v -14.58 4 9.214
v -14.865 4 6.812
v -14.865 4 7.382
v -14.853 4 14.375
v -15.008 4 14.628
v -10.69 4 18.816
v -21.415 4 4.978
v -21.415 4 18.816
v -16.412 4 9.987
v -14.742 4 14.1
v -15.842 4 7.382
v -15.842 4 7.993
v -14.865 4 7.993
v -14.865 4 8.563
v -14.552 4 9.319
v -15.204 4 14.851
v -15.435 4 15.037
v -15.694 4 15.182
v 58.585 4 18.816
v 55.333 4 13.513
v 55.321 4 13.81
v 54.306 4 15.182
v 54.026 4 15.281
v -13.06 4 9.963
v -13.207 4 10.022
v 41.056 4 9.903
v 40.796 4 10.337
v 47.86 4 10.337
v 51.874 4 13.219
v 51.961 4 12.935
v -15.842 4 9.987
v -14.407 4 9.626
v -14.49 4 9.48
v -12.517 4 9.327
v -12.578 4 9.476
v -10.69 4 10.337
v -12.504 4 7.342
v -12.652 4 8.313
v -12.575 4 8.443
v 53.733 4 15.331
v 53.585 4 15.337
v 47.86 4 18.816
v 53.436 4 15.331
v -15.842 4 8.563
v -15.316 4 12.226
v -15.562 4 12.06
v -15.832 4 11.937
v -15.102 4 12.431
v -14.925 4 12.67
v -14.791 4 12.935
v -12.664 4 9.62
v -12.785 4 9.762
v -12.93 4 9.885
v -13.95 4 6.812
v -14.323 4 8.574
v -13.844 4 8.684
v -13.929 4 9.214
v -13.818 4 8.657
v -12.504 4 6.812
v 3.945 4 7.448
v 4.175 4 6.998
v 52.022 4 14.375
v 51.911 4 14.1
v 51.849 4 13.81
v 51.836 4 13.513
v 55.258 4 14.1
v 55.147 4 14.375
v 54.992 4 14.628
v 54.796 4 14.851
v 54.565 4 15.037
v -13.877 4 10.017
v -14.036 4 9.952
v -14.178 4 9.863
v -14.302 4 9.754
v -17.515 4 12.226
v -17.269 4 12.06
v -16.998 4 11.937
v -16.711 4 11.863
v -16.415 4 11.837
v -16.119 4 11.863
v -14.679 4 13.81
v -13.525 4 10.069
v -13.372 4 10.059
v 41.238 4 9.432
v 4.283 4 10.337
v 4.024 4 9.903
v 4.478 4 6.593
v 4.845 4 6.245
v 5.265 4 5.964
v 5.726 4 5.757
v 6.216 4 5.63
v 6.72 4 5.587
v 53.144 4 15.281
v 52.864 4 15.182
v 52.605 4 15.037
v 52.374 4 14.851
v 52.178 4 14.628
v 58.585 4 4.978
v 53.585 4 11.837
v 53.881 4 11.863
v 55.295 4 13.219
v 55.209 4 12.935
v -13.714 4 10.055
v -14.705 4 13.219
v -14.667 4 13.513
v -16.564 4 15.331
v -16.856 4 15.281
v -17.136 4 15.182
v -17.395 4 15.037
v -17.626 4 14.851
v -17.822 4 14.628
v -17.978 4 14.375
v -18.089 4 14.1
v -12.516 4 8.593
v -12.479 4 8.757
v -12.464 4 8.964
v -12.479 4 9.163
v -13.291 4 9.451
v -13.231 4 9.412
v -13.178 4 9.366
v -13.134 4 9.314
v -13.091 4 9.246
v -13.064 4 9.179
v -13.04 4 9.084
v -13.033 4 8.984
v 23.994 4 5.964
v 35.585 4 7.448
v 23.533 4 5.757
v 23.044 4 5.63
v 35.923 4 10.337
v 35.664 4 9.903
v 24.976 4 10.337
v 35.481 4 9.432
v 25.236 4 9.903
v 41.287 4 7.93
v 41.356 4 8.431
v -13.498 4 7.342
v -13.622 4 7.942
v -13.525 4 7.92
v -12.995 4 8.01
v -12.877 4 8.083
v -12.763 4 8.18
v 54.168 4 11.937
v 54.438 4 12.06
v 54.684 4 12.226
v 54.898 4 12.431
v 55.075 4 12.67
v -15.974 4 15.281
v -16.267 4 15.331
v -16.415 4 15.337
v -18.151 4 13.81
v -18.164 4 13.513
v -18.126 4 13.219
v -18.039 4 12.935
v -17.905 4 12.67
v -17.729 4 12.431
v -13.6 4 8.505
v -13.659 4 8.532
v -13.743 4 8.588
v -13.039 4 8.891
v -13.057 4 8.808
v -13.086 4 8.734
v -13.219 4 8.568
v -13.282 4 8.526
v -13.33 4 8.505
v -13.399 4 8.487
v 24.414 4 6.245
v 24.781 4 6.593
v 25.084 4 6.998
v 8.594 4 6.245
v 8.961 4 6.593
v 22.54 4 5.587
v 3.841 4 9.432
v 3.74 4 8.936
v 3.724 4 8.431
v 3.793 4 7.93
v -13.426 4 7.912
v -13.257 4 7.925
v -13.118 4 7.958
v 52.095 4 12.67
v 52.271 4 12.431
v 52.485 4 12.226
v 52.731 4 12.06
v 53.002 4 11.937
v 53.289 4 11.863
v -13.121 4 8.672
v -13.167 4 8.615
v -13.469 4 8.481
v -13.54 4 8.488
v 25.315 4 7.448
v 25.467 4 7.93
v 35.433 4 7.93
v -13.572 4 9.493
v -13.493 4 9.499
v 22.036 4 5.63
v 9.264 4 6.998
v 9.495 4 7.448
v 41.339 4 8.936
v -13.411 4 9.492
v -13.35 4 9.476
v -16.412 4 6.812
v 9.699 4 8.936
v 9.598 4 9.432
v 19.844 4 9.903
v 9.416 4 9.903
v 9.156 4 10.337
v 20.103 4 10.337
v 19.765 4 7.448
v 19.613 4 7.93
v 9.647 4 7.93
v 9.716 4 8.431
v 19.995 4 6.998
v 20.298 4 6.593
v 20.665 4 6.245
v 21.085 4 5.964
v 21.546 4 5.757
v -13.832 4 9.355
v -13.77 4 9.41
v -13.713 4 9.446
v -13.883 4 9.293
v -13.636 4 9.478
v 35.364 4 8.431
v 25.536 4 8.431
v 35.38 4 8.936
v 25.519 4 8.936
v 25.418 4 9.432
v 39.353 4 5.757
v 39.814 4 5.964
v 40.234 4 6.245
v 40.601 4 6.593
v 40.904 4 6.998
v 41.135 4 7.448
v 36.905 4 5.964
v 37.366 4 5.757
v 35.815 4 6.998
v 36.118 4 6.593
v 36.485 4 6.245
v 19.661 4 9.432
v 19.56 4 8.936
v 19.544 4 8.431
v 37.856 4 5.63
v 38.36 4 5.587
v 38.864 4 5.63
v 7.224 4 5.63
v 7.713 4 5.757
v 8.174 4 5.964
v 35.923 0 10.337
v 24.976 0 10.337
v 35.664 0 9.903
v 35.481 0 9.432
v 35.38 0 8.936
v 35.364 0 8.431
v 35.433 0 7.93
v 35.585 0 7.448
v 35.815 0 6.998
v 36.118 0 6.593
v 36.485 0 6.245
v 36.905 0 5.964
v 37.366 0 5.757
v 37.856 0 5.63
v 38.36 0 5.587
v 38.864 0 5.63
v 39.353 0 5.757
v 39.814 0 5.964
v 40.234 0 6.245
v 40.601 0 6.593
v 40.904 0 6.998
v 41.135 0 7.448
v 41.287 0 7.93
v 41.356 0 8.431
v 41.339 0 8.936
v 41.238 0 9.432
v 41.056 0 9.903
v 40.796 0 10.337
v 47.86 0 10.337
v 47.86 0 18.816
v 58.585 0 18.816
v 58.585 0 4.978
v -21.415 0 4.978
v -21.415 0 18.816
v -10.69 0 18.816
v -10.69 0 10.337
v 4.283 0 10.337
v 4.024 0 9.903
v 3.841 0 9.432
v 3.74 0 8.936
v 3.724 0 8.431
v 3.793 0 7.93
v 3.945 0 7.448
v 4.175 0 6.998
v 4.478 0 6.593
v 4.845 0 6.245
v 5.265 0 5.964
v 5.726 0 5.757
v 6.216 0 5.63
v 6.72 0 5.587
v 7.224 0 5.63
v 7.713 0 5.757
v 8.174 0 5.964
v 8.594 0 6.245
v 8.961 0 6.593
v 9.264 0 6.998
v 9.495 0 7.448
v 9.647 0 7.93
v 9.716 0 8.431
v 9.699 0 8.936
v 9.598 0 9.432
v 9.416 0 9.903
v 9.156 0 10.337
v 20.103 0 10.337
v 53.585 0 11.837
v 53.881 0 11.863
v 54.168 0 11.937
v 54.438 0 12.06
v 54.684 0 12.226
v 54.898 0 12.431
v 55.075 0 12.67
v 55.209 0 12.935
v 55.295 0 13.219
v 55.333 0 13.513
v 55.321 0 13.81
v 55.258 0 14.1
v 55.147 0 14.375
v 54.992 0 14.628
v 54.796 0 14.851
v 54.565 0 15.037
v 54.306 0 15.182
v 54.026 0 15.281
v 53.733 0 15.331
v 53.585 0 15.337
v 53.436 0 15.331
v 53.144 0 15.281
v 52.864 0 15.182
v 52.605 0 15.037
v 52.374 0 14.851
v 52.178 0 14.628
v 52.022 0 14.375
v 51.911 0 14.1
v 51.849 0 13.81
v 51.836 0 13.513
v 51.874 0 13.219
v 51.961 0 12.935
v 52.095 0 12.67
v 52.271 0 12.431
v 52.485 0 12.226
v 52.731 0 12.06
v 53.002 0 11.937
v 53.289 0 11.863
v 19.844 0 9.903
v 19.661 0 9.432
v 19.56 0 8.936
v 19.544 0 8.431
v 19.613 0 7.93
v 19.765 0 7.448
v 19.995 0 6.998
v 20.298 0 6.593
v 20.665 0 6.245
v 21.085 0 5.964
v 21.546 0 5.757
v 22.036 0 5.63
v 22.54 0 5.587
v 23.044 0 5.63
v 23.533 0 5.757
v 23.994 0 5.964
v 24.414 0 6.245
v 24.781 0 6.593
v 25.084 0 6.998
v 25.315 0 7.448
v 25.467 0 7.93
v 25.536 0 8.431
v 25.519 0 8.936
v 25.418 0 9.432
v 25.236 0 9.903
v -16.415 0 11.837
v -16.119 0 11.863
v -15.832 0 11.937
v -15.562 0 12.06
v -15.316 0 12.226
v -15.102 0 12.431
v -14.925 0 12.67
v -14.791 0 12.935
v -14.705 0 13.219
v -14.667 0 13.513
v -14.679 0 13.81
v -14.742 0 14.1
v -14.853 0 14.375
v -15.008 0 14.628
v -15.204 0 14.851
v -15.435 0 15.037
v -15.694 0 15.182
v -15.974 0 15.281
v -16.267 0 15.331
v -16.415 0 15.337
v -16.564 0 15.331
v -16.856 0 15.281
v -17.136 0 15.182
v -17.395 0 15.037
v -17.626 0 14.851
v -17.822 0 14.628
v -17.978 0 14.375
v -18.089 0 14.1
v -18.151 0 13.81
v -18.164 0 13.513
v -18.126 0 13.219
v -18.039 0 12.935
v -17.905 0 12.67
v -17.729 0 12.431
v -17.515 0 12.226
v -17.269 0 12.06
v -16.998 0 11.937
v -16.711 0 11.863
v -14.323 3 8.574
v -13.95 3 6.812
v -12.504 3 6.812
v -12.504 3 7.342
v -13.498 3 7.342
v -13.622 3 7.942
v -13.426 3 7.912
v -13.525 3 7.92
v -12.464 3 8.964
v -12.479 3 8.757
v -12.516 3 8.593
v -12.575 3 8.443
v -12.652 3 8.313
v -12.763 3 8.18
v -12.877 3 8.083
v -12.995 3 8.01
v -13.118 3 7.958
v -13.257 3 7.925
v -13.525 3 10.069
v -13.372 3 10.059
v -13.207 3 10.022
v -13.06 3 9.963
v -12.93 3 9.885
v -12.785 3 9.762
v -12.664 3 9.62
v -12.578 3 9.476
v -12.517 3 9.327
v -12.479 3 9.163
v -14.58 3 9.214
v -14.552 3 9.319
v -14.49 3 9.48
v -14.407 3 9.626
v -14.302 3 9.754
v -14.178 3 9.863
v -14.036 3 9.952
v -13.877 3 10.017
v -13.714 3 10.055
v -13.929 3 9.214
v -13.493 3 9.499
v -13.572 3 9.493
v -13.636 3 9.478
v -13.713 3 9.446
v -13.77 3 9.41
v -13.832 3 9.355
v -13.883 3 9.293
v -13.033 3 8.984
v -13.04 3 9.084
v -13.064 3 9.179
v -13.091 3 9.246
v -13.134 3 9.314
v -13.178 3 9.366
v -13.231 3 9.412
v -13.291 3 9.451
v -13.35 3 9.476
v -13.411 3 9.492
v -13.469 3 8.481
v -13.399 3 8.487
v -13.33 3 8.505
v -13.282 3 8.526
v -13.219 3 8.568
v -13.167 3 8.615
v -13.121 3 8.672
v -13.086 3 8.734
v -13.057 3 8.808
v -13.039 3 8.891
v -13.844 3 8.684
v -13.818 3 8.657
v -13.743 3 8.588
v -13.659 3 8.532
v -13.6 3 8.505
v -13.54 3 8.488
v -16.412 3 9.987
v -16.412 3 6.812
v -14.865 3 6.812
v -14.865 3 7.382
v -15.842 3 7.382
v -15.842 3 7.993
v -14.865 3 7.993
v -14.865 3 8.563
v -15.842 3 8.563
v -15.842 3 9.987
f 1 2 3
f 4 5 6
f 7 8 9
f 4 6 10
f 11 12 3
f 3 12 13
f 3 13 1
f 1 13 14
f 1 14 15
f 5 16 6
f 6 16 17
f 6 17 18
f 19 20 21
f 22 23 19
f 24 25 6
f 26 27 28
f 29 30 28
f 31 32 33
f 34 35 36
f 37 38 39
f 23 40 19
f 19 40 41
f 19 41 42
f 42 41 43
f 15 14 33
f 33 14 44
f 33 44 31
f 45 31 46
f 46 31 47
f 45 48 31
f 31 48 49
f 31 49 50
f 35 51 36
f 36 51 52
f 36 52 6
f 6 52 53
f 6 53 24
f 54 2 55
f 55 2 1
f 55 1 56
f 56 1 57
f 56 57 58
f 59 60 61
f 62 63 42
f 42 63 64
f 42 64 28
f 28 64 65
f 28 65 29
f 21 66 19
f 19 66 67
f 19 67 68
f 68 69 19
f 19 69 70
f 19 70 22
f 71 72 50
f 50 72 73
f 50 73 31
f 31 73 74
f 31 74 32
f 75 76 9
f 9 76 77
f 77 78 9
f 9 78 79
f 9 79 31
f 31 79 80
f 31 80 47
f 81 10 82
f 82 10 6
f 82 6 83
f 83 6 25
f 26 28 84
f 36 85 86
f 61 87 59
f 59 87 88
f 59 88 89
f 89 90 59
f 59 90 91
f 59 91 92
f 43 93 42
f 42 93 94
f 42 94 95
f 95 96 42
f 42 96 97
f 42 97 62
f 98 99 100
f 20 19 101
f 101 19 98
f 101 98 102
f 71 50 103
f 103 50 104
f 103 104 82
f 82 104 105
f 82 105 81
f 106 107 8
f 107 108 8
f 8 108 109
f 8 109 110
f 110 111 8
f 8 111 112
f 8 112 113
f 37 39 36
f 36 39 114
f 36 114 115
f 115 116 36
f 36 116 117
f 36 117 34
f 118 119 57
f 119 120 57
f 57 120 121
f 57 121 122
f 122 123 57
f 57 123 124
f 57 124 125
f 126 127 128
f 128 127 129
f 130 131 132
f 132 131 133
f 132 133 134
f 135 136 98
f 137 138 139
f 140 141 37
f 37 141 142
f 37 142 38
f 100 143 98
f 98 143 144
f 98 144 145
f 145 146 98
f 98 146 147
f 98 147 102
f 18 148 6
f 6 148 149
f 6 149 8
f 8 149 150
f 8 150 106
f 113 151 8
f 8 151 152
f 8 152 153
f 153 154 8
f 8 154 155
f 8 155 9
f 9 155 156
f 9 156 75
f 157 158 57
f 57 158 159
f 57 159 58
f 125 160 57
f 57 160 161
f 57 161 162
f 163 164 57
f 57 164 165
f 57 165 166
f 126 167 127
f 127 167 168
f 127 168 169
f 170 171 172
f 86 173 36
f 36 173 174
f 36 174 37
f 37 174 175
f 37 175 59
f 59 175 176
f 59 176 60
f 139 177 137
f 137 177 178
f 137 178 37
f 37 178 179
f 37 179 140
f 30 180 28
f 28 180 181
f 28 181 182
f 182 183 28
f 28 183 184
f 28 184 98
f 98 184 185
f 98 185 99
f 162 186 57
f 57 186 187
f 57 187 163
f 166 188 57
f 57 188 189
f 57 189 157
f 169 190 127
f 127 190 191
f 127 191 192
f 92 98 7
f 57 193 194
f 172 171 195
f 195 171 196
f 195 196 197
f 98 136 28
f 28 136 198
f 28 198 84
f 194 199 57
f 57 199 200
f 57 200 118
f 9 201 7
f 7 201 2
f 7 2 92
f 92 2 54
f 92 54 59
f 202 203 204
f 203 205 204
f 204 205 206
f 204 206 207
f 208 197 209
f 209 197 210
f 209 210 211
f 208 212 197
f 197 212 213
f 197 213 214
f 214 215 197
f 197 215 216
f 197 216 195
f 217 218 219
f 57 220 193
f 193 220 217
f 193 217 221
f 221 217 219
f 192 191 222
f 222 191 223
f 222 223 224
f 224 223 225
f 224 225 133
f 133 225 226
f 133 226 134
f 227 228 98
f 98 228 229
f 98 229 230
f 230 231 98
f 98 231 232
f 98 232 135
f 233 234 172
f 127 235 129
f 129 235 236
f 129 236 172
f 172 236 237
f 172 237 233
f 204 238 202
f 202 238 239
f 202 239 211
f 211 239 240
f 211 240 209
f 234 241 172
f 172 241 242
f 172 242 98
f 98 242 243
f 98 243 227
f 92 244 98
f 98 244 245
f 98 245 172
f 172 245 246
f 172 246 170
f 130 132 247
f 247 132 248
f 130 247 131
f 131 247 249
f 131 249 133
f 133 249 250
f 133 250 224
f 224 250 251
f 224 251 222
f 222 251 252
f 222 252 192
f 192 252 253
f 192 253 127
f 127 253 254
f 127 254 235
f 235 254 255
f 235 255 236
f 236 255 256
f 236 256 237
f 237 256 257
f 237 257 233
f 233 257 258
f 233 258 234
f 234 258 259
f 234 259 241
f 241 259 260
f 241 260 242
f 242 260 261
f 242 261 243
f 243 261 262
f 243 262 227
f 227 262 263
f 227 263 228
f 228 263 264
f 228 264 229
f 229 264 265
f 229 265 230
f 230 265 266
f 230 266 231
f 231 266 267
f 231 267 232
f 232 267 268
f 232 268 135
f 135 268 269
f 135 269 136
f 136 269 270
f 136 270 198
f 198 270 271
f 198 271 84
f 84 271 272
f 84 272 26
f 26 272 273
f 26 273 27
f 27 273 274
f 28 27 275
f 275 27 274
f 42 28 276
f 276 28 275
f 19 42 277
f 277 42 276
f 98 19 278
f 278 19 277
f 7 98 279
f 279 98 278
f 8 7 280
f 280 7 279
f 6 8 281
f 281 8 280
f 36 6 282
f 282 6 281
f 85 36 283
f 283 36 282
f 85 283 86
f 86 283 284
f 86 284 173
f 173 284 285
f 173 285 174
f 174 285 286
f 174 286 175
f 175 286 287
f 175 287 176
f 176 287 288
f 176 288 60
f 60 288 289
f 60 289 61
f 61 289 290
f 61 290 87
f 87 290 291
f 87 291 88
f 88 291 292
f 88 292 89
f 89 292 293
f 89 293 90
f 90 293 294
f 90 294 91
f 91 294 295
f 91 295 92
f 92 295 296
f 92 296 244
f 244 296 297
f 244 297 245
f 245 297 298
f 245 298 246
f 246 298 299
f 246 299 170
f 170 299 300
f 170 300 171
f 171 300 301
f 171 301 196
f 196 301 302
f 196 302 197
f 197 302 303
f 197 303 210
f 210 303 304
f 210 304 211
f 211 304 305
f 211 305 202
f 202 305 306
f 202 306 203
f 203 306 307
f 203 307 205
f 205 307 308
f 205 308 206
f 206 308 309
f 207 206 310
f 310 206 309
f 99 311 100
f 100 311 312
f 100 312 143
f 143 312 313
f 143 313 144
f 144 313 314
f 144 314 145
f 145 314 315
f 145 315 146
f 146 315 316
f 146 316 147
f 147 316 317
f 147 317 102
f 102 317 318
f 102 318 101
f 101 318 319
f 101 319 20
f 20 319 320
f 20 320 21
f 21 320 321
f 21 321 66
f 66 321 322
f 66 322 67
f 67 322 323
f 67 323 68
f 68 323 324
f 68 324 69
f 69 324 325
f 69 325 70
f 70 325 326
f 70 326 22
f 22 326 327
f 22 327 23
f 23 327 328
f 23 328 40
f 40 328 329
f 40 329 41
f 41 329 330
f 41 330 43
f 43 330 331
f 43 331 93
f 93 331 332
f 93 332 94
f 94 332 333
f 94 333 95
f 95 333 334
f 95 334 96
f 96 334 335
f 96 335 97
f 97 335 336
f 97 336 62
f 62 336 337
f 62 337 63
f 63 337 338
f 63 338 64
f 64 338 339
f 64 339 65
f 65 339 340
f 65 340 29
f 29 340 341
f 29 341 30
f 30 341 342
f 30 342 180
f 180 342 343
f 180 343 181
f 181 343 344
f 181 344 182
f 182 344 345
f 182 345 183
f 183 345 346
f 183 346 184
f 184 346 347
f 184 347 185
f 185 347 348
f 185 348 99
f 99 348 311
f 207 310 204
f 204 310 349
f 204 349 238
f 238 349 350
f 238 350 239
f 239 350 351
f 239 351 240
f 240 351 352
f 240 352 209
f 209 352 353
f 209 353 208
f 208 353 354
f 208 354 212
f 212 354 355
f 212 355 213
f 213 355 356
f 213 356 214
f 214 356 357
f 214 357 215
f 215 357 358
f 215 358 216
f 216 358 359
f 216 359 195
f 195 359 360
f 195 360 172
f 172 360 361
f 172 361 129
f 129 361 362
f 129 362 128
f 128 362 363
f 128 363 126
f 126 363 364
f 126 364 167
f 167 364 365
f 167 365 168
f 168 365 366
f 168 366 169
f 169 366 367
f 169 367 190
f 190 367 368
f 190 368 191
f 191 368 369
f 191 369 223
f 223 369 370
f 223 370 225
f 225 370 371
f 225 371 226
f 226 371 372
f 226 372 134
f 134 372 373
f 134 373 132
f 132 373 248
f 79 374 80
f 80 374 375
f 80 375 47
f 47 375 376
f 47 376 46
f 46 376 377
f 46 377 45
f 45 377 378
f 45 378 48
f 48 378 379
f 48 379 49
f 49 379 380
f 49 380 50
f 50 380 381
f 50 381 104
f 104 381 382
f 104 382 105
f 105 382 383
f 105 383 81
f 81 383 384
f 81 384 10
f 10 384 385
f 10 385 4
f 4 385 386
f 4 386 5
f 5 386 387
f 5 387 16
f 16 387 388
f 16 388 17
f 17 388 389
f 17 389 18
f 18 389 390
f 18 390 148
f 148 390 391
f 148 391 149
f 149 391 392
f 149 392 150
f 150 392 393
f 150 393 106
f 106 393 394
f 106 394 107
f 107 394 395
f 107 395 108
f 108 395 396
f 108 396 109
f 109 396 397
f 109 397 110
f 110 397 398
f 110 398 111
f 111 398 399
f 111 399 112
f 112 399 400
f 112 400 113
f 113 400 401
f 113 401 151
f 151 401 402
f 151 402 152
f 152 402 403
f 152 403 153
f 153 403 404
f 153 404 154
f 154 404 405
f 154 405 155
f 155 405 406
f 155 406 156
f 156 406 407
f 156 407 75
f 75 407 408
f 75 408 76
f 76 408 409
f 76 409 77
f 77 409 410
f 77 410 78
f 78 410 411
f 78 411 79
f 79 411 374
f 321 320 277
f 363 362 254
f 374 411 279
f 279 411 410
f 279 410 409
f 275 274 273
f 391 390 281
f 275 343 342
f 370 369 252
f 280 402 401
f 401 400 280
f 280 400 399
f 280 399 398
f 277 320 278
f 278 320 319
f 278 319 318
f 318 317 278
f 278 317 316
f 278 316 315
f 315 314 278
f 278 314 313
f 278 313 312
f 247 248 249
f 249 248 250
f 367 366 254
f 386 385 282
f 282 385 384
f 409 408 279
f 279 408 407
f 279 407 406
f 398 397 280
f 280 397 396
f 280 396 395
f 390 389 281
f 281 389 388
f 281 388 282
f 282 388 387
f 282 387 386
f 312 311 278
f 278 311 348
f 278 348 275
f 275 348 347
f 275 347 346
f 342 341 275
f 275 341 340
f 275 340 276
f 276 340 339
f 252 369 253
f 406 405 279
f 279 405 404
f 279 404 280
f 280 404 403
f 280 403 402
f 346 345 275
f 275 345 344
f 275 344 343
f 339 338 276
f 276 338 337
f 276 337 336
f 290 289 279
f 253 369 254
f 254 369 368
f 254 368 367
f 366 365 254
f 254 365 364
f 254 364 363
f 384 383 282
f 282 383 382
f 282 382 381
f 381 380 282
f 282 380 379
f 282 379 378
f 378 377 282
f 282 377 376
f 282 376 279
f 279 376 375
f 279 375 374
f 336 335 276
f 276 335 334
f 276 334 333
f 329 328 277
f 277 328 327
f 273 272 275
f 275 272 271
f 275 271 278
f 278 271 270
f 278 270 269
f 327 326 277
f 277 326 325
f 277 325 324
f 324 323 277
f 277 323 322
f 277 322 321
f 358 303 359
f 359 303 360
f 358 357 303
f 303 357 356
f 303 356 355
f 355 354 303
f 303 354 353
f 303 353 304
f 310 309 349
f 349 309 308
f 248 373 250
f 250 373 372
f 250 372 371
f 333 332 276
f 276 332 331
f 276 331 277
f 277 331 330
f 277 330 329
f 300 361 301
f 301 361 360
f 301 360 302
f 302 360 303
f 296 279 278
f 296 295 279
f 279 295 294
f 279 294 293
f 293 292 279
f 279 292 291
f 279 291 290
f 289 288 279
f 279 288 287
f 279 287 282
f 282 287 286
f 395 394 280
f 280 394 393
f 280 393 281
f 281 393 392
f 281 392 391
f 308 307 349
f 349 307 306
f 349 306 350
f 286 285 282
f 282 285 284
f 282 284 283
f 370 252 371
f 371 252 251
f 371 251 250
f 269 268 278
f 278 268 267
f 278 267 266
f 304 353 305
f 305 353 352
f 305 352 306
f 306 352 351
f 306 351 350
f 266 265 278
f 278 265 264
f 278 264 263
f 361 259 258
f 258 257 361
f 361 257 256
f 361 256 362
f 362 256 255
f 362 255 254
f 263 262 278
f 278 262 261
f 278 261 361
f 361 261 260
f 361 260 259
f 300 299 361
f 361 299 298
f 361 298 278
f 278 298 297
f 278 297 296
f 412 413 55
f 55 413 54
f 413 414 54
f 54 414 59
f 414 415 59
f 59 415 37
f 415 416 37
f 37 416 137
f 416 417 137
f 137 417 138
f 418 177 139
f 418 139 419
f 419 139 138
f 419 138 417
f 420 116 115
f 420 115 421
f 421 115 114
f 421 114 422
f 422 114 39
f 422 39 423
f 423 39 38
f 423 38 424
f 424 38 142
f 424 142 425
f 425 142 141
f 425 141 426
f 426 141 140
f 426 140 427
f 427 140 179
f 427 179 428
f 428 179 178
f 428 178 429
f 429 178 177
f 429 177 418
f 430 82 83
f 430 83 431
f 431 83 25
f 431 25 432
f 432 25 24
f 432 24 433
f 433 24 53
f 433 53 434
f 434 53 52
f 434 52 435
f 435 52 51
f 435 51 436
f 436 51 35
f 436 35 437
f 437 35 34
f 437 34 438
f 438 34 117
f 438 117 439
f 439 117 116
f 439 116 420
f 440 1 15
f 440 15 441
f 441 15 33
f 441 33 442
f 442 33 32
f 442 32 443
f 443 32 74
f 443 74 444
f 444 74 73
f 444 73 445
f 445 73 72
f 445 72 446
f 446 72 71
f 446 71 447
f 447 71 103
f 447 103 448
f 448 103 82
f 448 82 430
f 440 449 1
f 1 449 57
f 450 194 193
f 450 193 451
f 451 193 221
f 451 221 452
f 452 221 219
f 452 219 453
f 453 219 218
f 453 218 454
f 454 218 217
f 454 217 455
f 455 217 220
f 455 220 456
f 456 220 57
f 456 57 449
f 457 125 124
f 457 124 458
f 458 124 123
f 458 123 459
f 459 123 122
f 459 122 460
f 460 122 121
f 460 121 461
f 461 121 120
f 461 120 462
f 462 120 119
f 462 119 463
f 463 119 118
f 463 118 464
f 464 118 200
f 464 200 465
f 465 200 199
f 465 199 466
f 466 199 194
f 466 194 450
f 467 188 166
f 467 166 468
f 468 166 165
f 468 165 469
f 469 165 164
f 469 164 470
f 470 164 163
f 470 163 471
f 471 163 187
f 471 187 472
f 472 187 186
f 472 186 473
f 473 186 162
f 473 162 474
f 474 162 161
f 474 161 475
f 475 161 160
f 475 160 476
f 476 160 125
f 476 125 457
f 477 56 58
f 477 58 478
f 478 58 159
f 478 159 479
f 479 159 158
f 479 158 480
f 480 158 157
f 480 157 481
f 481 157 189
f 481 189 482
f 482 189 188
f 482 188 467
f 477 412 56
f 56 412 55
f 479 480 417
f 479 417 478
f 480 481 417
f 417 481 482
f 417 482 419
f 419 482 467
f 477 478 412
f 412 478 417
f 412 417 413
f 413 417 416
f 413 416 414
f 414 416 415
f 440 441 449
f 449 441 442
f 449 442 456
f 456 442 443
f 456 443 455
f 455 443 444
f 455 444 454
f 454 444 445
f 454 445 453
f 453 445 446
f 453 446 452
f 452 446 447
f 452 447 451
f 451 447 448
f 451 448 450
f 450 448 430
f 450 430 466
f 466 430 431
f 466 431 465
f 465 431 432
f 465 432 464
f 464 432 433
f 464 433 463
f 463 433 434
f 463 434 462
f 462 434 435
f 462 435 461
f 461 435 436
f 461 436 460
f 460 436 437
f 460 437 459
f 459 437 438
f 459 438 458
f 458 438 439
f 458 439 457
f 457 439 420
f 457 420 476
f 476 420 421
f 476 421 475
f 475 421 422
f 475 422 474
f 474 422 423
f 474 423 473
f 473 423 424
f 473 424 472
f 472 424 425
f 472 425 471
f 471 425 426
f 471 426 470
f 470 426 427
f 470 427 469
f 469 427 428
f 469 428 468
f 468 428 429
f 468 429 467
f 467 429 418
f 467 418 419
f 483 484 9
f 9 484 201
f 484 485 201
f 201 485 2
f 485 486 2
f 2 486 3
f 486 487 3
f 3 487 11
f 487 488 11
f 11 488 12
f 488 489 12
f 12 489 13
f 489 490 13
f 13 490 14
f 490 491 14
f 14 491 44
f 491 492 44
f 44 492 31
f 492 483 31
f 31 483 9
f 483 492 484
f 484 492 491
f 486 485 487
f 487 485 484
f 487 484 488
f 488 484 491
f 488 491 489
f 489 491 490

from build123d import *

# Parameters (mm, degrees)
BOSS_EXTRUDE1_OUTLINE_R = 1.75
BOSS_EXTRUDE1_DEPTH     = 4
CUT_EXTRUDE1_DEPTH      = 1


# Read off the part's stored shape, not the designer's step: Boss-Extrude1
with BuildPart() as part:
    # Boss-Extrude1 outline → Boss-Extrude1 (new body)
    with BuildSketch(Plane(origin=(0, 0, 0), x_dir=(1, 0, 0), z_dir=(0, 1, 0))):
        with BuildLine():
            Line((24.976474615, -10.33744254), (35.92307775, -10.33744254))
            ThreePointArc((35.92307775, -10.33744254), (38.359776182, -5.587442326), (40.796474615, -10.33744254))
            Line((40.796474615, -10.33744254), (47.859776182, -10.33744254))
            Line((47.859776182, -10.33744254), (47.859776182, -18.81631662))
            Line((47.859776182, -18.81631662), (58.584776182, -18.81631662))
            Line((58.584776182, -18.81631662), (58.584776182, -4.977921711))
            Line((58.584776182, -4.977921711), (-21.415223818, -4.977921711))
            Line((-21.415223818, -4.977921711), (-21.415223818, -18.81631662))
            Line((-21.415223818, -18.81631662), (-10.690223818, -18.81631662))
            Line((-10.690223818, -18.81631662), (-10.690223818, -10.33744254))
            Line((-10.690223818, -10.33744254), (4.28307775, -10.33744254))
            ThreePointArc((4.28307775, -10.33744254), (6.719776183, -5.587442326), (9.156474615, -10.33744254))
            Line((9.156474615, -10.33744254), (20.10307775, -10.33744254))
            ThreePointArc((20.10307775, -10.33744254), (22.539776182, -5.587442326), (24.976474615, -10.33744254))
        make_face()
        with Locations((-16.415223818, -13.587442433)):
            Circle(BOSS_EXTRUDE1_OUTLINE_R, mode=Mode.SUBTRACT)
        with Locations((53.584776182, -13.587442433)):
            Circle(BOSS_EXTRUDE1_OUTLINE_R, mode=Mode.SUBTRACT)
    extrude(amount=BOSS_EXTRUDE1_DEPTH)

    # Sketch2 → Cut-Extrude1 (cut)
    with BuildSketch(Plane(origin=(0, 4, 0), x_dir=(1, 0, 0), z_dir=(0, 1, 0))):
        Polygon((-16.41198232, -6.812466594), (-14.865187448, -6.812466594), (-14.865187448, -7.382338389), (-15.842110525, -7.382338389), (-15.842110525, -7.992915312), (-14.865187448, -7.992915312), (-14.865187448, -8.562787107), (-15.842110525, -8.562787107), (-15.842110525, -9.987466594), (-16.41198232, -9.987466594), align=None)
        with BuildLine():
            Line((-13.949958082, -6.812466594), (-12.504290013, -6.812466594))
            Line((-12.504290013, -6.812466594), (-12.504290013, -7.341633261))
            Line((-12.504290013, -7.341633261), (-13.498385565, -7.341633261))
            Line((-13.498385565, -7.341633261), (-13.622409003, -7.942033902))
            add(Edge.make_bspline(
                [(-13.622409003, -7.942033902), (-13.605509034, -7.937327047), (-13.572178824, -7.928044162), (-13.52196682, -7.918734604), (-13.473304391, -7.912700444), (-13.441372402, -7.911895568), (-13.425879556, -7.911505055)],
                knots=[0, 0, 0, 0, 1.05461699, 2.079921384, 3.068411212, 4, 4, 4, 4], degree=3))
            add(Edge.make_bspline(
                [(-13.425879556, -7.911505055), (-13.392119021, -7.912278658), (-13.325569569, -7.913803601), (-13.228216166, -7.928280275), (-13.134994532, -7.951080599), (-13.046189934, -7.983598566), (-12.961889124, -8.025921539), (-12.881989912, -8.077120472), (-12.806394235, -8.137285289), (-12.73644499, -8.20645366), (-12.672172703, -8.282402096), (-12.616291615, -8.364548366), (-12.568565678, -8.451721144), (-12.530606118, -8.544462294), (-12.500645197, -8.642189339), (-12.478994766, -8.744964906), (-12.466191785, -8.852910799), (-12.464465382, -8.926554564), (-12.463584884, -8.96411423)],
                knots=[0, 0, 0, 0, 1.01440847, 1.999622559, 2.951875003, 3.895578053, 4.836219714, 5.782137149, 6.743708247, 7.735272588, 8.734977101, 9.730283169, 10.717124674, 11.717316708, 12.737475749, 13.78628267, 14.87096371, 16, 16, 16, 16], degree=3))
            add(Edge.make_bspline(
                [(-12.463584884, -8.96411423), (-12.464660866, -9.002100285), (-12.466784093, -9.077057875), (-12.480636202, -9.187272048), (-12.505085424, -9.292832343), (-12.538668877, -9.394021345), (-12.582912926, -9.490095338), (-12.63612245, -9.582049577), (-12.699197079, -9.669201514), (-12.771517834, -9.750657738), (-12.850139982, -9.82511029), (-12.93385401, -9.890606342), (-13.022071802, -9.94572074), (-13.114795487, -9.990262491), (-13.211493079, -10.025503132), (-13.312193927, -10.051156636), (-13.417387424, -10.065867495), (-13.488800141, -10.067862709), (-13.525098306, -10.06887685)],
                knots=[0, 0, 0, 0, 1.06808661, 2.107647099, 3.116961351, 4.110378221, 5.100014249, 6.085620622, 7.093190682, 8.119403071, 9.144090782, 10.133780668, 11.103064255, 12.062861538, 13.020824475, 13.992378307, 14.979551724, 16, 16, 16, 16], degree=3))
            add(Edge.make_bspline(
                [(-13.525098306, -10.06887685), (-13.557558674, -10.068047219), (-13.621577314, -10.066411014), (-13.715873961, -10.056354031), (-13.806786399, -10.038573192), (-13.893831984, -10.012839713), (-13.97792658, -9.981167676), (-14.058098031, -9.941555807), (-14.134786891, -9.894758372), (-14.207775393, -9.841629423), (-14.275877579, -9.781781722), (-14.338034038, -9.716268103), (-14.394621073, -9.645914331), (-14.444427811, -9.569852456), (-14.487298122, -9.488194854), (-14.525316388, -9.40190388), (-14.556434719, -9.310078379), (-14.572226377, -9.24641984), (-14.580251551, -9.214069158)],
                knots=[0, 0, 0, 0, 1.054957082, 2.080596141, 3.077793124, 4.061112343, 5.027190972, 5.994718051, 6.962465889, 7.943658696, 8.924948258, 9.904494768, 10.875059, 11.855380583, 12.854004648, 13.869083016, 14.917087635, 16, 16, 16, 16], degree=3))
            Line((-14.580251551, -9.214069158), (-13.9289695, -9.214069158))
            add(Edge.make_bspline(
                [(-13.9289695, -9.214069158), (-13.917064048, -9.236486864), (-13.893927162, -9.280053116), (-13.849915688, -9.337893862), (-13.800647638, -9.387217966), (-13.746567435, -9.428507334), (-13.687324675, -9.459440626), (-13.625333386, -9.482899003), (-13.559814799, -9.496454731), (-13.515193749, -9.498149331), (-13.492661407, -9.499005055)],
                knots=[0, 0, 0, 0, 1.104910296, 2.147267069, 3.153527244, 4.136738762, 5.099945312, 6.05603338, 7.018353, 8, 8, 8, 8], degree=3))
            add(Edge.make_bspline(
                [(-13.492661407, -9.499005055), (-13.476956667, -9.49841417), (-13.446057326, -9.497251594), (-13.400532034, -9.491101274), (-13.357076143, -9.479452707), (-13.315366568, -9.463322149), (-13.275291268, -9.443205522), (-13.237424734, -9.417809591), (-13.201108159, -9.388577933), (-13.166894426, -9.355034506), (-13.135906647, -9.317641387), (-13.108733754, -9.277459932), (-13.08443744, -9.235382981), (-13.066440789, -9.189743761), (-13.051703054, -9.141905074), (-13.040849589, -9.09150606), (-13.03436342, -9.038487855), (-13.033762974, -9.002293813), (-13.033456679, -8.983830777)],
                knots=[0, 0, 0, 0, 0.978869489, 1.925942215, 2.855067702, 3.774946051, 4.70828698, 5.642468714, 6.60995405, 7.609372294, 8.622401667, 9.629904756, 10.629323, 11.642352373, 12.678539694, 13.745912462, 14.850161547, 16, 16, 16, 16], degree=3))
            add(Edge.make_bspline(
                [(-13.033456679, -8.983830777), (-13.03381217, -8.965796309), (-13.034504141, -8.930691779), (-13.040228266, -8.879145756), (-13.050468615, -8.830237908), (-13.064421178, -8.783593638), (-13.082282125, -8.739496193), (-13.104109396, -8.697683084), (-13.129996239, -8.65836566), (-13.160081636, -8.622344386), (-13.192164393, -8.589304649), (-13.226631584, -8.560408358), (-13.263172677, -8.536426443), (-13.300652202, -8.515489534), (-13.340566208, -8.500252107), (-13.382017188, -8.489758654), (-13.424961552, -8.48205898), (-13.454252971, -8.481606596), (-13.469128755, -8.48137685)],
                knots=[0, 0, 0, 0, 1.166249705, 2.270133367, 3.348514167, 4.393962215, 5.415026464, 6.420877785, 7.440098956, 8.453121383, 9.451844239, 10.415694839, 11.355045125, 12.27538808, 13.187007209, 14.108269027, 15.039275622, 16, 16, 16, 16], degree=3))
            add(Edge.make_bspline(
                [(-13.469128755, -8.48137685), (-13.485287313, -8.481989978), (-13.51767253, -8.483218817), (-13.565788856, -8.493217552), (-13.613325034, -8.509399257), (-13.660545412, -8.531724482), (-13.706981248, -8.560941158), (-13.753858004, -8.59520897), (-13.799606617, -8.637017798), (-13.828694857, -8.668157109), (-13.843743138, -8.684266474)],
                knots=[0, 0, 0, 0, 0.88288272, 1.769486374, 2.674910571, 3.623812639, 4.617874466, 5.670434592, 6.794841017, 8, 8, 8, 8], degree=3))
            Line((-13.843743138, -8.684266474), (-14.323300429, -8.574235424))
            Line((-14.323300429, -8.574235424), (-13.949958082, -6.812466594))
        make_face()
    extrude(amount=-CUT_EXTRUDE1_DEPTH, mode=Mode.SUBTRACT)


solid = part.part
